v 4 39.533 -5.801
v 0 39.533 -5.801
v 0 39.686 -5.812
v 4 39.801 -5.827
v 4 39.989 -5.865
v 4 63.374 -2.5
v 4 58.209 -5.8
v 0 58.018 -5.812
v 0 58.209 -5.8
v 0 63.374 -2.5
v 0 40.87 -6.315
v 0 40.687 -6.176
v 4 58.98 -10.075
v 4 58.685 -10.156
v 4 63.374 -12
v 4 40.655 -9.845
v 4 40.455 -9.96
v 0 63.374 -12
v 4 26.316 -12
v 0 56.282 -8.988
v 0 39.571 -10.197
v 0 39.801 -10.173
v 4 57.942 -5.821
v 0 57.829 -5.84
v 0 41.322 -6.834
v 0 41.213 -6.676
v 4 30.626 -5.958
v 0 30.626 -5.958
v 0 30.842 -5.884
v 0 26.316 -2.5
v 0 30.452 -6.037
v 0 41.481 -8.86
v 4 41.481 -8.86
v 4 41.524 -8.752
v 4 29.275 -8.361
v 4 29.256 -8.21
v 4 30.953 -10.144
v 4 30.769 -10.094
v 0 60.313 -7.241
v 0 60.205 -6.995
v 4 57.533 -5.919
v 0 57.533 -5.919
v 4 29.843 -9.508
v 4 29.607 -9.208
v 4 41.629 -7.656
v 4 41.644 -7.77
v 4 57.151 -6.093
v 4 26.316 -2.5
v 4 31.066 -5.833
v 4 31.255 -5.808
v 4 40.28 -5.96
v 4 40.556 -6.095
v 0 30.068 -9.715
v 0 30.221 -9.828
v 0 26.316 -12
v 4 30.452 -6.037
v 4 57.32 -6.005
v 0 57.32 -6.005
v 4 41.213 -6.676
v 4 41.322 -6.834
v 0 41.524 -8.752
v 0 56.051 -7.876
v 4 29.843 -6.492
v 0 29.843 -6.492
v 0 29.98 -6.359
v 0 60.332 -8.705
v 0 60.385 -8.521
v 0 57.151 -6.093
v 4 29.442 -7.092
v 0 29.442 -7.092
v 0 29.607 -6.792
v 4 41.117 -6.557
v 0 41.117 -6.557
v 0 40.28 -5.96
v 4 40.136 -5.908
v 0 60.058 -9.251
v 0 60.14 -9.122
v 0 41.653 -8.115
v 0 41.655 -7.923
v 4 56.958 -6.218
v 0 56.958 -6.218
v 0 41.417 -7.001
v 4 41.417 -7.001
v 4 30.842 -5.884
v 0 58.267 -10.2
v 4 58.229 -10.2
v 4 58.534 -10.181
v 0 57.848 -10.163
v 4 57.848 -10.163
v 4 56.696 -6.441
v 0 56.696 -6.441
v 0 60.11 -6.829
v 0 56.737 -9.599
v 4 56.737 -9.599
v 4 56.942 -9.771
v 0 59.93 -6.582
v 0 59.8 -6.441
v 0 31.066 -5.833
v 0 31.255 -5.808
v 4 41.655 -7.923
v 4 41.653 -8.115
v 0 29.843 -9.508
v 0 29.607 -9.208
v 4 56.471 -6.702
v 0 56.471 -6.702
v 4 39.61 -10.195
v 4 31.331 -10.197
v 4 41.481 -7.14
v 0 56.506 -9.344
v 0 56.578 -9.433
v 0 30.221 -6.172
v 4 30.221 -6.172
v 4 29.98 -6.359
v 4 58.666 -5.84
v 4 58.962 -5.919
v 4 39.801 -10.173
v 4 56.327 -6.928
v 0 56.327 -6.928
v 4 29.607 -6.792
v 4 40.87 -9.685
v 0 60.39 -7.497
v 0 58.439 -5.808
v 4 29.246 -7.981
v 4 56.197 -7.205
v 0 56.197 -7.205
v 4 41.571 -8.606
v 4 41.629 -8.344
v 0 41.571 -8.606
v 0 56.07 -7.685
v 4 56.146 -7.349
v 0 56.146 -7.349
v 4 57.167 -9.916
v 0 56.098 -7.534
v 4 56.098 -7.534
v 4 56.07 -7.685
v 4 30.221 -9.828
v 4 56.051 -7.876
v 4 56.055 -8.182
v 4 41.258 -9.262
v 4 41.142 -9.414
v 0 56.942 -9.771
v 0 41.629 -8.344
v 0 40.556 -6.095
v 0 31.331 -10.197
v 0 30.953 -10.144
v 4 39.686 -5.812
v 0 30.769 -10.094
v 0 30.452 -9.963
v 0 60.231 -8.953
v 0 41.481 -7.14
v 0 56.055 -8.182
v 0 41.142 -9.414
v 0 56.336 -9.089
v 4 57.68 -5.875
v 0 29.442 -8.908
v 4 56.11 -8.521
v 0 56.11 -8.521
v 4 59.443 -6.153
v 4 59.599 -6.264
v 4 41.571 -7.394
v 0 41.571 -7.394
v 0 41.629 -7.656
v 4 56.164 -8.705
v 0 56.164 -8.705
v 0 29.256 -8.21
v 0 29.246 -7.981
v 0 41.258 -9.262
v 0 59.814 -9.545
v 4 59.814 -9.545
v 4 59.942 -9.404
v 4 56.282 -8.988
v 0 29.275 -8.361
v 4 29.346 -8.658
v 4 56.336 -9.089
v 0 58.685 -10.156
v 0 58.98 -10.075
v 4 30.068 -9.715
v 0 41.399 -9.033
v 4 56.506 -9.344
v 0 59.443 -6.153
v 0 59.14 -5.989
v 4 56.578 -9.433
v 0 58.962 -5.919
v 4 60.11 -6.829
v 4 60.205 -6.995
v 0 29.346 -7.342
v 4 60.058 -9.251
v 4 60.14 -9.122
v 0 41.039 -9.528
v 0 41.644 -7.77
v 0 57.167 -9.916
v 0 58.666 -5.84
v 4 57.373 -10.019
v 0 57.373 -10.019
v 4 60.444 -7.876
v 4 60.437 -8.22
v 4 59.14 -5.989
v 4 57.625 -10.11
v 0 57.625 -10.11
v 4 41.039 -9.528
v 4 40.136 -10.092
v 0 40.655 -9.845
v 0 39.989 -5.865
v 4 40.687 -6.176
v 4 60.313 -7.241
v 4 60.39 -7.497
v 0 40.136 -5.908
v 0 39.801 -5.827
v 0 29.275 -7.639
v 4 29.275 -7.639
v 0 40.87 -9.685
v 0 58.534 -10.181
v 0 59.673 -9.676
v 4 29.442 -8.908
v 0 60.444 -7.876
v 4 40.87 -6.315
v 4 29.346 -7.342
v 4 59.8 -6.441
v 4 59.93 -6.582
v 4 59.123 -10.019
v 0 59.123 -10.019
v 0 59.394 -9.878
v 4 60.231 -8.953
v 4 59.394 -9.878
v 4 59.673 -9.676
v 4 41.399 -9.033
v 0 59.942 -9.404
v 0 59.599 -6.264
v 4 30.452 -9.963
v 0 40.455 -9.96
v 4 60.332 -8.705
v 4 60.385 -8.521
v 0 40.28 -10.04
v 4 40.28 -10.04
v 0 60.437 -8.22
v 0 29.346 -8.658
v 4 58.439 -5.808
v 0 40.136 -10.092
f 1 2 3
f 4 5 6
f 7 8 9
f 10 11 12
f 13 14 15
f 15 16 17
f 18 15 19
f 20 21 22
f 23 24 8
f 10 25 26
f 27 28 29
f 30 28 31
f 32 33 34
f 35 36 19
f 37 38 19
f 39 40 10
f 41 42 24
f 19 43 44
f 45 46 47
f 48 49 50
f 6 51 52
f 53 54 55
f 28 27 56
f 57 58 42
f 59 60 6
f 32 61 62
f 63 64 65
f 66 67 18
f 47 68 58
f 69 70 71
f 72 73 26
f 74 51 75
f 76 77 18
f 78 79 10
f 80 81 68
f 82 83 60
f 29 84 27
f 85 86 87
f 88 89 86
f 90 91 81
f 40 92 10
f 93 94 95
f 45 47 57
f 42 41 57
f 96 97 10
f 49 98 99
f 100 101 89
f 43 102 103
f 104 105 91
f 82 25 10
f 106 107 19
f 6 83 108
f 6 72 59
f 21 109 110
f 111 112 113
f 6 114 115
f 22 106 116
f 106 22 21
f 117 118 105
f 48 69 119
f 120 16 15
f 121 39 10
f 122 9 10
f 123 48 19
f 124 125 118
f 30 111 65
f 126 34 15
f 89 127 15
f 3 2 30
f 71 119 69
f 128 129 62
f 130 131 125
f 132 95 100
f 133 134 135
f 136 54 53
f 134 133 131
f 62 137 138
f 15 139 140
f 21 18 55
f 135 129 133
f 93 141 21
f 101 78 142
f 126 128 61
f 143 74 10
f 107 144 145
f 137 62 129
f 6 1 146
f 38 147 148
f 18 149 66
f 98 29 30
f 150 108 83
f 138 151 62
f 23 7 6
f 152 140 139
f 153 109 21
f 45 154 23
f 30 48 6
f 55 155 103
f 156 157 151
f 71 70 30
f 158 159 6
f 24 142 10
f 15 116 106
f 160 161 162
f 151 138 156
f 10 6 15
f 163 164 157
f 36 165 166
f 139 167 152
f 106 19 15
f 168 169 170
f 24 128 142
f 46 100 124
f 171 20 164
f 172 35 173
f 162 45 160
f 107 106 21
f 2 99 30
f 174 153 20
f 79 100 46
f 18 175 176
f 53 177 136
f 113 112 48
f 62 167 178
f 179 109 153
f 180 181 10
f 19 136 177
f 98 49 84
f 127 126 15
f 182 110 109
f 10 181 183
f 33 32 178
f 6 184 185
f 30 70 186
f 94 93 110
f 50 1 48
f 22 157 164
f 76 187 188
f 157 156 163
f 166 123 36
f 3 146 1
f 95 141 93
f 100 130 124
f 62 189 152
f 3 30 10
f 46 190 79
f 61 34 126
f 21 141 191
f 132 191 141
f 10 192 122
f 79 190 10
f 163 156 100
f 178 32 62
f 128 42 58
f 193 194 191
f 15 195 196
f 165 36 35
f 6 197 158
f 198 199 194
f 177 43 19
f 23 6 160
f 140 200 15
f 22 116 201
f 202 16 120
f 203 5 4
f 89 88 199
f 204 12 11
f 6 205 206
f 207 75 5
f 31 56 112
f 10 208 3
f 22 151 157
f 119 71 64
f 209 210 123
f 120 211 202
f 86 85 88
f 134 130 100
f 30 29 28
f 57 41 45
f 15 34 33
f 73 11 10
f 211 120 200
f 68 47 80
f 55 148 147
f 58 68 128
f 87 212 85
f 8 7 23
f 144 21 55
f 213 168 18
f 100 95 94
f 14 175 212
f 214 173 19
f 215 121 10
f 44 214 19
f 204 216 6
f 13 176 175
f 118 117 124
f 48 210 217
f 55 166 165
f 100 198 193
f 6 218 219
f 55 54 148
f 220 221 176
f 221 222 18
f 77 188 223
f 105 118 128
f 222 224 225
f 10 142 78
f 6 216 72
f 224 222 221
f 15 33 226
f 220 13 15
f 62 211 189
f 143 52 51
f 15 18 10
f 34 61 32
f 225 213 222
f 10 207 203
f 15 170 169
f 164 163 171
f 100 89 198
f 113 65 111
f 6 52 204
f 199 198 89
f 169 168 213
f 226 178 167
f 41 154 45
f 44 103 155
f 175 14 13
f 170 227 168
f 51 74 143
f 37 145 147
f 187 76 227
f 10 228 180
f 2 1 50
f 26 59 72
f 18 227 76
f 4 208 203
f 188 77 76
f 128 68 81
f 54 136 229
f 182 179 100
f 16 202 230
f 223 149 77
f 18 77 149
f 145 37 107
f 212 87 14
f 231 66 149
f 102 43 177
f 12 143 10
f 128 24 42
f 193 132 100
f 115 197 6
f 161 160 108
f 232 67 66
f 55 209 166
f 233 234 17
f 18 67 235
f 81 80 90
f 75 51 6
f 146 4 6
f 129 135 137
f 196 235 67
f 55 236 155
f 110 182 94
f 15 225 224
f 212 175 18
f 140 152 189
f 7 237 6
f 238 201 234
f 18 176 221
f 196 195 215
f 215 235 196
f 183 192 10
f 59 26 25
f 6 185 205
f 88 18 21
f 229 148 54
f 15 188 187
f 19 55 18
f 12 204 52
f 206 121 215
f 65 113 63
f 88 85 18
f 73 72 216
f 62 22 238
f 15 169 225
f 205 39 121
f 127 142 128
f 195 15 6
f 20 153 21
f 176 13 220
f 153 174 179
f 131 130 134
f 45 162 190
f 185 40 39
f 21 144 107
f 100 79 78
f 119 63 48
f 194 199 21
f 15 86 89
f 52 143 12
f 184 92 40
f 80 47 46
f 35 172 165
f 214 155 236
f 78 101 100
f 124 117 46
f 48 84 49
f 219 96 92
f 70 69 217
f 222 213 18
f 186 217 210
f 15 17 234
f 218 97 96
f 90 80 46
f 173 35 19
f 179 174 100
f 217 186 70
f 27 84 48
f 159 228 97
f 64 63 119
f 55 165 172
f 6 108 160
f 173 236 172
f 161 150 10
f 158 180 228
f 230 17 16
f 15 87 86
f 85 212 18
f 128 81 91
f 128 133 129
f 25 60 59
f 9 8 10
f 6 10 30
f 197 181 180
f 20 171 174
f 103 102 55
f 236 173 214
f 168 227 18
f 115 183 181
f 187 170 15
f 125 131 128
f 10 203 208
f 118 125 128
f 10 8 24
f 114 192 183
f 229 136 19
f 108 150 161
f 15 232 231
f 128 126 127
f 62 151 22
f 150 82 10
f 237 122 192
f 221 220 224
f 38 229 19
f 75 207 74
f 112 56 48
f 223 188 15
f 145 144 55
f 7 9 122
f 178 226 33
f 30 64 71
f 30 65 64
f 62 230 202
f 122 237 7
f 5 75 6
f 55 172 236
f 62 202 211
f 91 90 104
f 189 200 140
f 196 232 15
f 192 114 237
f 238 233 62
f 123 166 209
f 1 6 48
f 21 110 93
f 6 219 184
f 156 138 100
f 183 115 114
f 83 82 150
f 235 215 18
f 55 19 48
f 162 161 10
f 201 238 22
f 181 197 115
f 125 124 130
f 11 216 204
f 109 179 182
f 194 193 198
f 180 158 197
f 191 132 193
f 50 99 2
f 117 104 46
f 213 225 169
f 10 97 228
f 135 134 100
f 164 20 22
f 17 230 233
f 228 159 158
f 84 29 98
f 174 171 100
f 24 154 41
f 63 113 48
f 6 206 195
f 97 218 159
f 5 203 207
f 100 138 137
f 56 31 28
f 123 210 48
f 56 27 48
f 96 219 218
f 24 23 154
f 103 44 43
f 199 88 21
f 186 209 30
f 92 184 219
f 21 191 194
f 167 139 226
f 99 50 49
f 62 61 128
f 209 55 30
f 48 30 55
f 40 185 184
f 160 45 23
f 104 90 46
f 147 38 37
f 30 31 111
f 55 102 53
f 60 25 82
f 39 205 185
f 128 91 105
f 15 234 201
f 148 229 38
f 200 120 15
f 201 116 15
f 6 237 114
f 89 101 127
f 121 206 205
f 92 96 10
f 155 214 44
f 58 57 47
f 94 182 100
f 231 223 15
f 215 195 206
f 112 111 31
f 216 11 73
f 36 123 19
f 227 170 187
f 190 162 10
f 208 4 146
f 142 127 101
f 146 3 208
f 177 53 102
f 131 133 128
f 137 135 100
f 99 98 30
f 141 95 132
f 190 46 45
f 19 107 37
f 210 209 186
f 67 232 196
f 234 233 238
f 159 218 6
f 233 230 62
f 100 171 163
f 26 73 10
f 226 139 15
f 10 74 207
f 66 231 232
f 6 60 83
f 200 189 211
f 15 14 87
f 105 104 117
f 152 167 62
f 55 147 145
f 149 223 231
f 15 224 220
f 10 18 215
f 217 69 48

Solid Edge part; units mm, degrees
sketch "Sketch1" plane through (0, 0, 0) normal (1, 0, 0) x (0, 1, 0)
  line L0 (63.3741, -12) -> (63.3741, -2.5)
  line L1 (63.3741, -2.5) -> (26.3156, -2.5)
  line L2 (26.3156, -2.5) -> (26.3156, -12)
  line L3 (26.3156, -12) -> (63.3741, -12)
  line L4 (39.4564, -10.2) -> (31.4456, -10.2)
  arc A0 (39.4564, -5.8) -> (39.4564, -10.2) centre (39.4564, -8) cw
  line L5 (31.4456, -5.8) -> (39.4564, -5.8)
  arc A1 (31.4456, -10.2) -> (31.4456, -5.8) centre (31.4456, -8) cw
  circle A2 centre (58.2478, -8) radius 2.2
extrude "Protrusion1" add sketch "Sketch1" along normal blind 4
